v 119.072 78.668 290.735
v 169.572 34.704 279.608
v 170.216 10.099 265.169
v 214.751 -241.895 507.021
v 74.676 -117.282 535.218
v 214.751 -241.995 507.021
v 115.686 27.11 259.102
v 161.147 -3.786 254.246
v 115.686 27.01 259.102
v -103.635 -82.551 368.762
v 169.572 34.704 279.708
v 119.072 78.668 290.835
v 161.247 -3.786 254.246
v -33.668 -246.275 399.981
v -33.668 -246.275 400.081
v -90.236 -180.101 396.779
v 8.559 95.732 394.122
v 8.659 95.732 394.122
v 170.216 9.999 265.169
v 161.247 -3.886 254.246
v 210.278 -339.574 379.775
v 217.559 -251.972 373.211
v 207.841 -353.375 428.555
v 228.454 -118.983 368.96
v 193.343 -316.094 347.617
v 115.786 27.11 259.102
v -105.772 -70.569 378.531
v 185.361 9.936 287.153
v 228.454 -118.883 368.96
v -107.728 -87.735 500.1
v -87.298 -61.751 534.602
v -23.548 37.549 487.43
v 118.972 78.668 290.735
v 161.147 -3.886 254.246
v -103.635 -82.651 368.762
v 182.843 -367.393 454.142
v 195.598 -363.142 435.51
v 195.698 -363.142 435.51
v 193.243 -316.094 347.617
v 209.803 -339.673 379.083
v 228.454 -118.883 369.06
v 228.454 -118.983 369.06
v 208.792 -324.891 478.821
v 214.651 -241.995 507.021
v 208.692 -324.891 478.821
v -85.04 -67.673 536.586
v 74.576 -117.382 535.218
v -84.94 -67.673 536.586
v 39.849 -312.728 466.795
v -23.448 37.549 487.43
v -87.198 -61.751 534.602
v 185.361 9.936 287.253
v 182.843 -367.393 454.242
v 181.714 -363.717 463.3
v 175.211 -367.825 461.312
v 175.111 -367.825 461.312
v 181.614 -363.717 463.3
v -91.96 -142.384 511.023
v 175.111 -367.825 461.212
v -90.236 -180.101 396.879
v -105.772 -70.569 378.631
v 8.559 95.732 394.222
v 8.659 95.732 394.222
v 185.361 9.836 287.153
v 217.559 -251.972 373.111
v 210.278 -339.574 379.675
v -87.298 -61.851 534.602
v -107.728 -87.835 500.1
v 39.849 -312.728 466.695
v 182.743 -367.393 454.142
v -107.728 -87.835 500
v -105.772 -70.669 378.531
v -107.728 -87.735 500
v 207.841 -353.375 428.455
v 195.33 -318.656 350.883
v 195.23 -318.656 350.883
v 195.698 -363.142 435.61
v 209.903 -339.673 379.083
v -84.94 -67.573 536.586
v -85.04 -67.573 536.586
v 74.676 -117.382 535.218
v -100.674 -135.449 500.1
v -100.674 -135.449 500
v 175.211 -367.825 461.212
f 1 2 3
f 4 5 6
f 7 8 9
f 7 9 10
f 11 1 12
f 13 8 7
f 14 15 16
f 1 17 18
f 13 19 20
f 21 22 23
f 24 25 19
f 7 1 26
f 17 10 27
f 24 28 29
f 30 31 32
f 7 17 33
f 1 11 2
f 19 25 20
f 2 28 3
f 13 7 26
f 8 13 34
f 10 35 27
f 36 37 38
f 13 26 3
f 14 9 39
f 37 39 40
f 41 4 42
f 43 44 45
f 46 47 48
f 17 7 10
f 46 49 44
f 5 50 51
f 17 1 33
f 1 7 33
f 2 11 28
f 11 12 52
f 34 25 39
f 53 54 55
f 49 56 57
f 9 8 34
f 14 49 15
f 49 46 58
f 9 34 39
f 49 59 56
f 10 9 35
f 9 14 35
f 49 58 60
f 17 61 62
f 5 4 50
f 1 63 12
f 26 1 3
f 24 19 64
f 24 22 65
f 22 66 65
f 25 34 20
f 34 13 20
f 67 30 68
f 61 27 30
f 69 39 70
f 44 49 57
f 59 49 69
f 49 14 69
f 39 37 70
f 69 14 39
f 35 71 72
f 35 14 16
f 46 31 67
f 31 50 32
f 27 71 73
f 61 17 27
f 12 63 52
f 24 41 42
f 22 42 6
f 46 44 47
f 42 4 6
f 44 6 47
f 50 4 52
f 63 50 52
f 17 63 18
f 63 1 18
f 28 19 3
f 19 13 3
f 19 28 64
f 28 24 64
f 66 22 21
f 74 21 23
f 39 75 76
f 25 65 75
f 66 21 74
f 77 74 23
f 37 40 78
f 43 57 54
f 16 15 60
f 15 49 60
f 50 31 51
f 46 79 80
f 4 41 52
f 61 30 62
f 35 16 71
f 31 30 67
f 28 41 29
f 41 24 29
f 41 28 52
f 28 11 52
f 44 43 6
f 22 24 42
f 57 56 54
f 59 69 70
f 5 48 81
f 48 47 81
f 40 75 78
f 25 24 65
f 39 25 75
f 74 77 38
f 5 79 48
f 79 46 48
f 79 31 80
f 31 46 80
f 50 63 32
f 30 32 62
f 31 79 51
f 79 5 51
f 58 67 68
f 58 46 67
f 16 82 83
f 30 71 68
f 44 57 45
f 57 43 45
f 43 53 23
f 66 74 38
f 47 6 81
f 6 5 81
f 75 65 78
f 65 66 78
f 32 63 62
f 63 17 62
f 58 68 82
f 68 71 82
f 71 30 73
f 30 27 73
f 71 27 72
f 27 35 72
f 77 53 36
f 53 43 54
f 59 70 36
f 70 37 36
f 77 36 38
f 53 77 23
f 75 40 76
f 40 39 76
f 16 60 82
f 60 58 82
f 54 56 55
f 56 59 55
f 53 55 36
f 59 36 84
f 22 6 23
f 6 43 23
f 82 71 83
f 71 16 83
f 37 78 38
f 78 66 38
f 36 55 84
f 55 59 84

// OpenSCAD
hull(){ translate([169.472046175,34.6044590312,279.607854233])cube(0.1,0.1,0.1);
translate([193.243318486,-316.094097996,347.616926503])cube(0.1,0.1,0.1);
translate([170.116424637,9.99874812218,265.169003505])cube(0.1,0.1,0.1);
translate([161.147205151,-3.88645010243,254.246414984])cube(0.1,0.1,0.1);
translate([185.260617761,9.83590733591,287.152509653])cube(0.1,0.1,0.1);
translate([118.972455348,78.5678932645,290.73488272])cube(0.1,0.1,0.1);
translate([115.685871056,27.0096021948,259.101508916])cube(0.1,0.1,0.1);
translate([-103.635477583,-82.6510721248,368.762183236])cube(0.1,0.1,0.1);
translate([195.598055321,-363.142343382,435.509701194])cube(0.1,0.1,0.1);
translate([8.5593220339,95.6317411402,394.121725732])cube(0.1,0.1,0.1);
translate([-105.772413793,-70.6689655172,378.531034483])cube(0.1,0.1,0.1);
translate([195.230487166,-318.656364589,350.882661079])cube(0.1,0.1,0.1);
translate([209.802897174,-339.673474234,379.083353123])cube(0.1,0.1,0.1);
translate([-107.728085868,-87.8354203936,500.0])cube(0.1,0.1,0.1);
translate([-100.674157303,-135.449438202,500.0])cube(0.1,0.1,0.1);
translate([-33.6679292929,-246.275252525,399.981060606])cube(0.1,0.1,0.1);
translate([-90.2360876897,-180.101180438,396.779089376])cube(0.1,0.1,0.1);
translate([228.353815216,-118.982795218,368.960451346])cube(0.1,0.1,0.1);
translate([217.458770615,-251.971514243,373.110944528])cube(0.1,0.1,0.1);
translate([207.741044377,-353.375385085,428.45520279])cube(0.1,0.1,0.1);
translate([210.178464006,-339.57389212,379.675155404])cube(0.1,0.1,0.1);
translate([-23.5480781509,37.4492401992,487.33048142])cube(0.1,0.1,0.1);
translate([-87.2983162311,-61.8507284993,534.502239356])cube(0.1,0.1,0.1);
translate([-91.9599528857,-142.383981154,510.92343934])cube(0.1,0.1,0.1);
translate([-85.0396869143,-67.6733546467,536.486054459])cube(0.1,0.1,0.1);
translate([39.8485770811,-312.727895298,466.695327956])cube(0.1,0.1,0.1);
translate([74.5754716981,-117.382075472,535.117924528])cube(0.1,0.1,0.1);
translate([208.692022263,-324.891333157,478.721176782])cube(0.1,0.1,0.1);
translate([214.651201053,-241.994899638,506.920862126])cube(0.1,0.1,0.1);
translate([182.742663657,-367.392776524,454.14221219])cube(0.1,0.1,0.1);
translate([175.110513447,-367.824938875,461.211735941])cube(0.1,0.1,0.1);
translate([181.614022909,-363.717459216,463.200277681])cube(0.1,0.1,0.1); }
